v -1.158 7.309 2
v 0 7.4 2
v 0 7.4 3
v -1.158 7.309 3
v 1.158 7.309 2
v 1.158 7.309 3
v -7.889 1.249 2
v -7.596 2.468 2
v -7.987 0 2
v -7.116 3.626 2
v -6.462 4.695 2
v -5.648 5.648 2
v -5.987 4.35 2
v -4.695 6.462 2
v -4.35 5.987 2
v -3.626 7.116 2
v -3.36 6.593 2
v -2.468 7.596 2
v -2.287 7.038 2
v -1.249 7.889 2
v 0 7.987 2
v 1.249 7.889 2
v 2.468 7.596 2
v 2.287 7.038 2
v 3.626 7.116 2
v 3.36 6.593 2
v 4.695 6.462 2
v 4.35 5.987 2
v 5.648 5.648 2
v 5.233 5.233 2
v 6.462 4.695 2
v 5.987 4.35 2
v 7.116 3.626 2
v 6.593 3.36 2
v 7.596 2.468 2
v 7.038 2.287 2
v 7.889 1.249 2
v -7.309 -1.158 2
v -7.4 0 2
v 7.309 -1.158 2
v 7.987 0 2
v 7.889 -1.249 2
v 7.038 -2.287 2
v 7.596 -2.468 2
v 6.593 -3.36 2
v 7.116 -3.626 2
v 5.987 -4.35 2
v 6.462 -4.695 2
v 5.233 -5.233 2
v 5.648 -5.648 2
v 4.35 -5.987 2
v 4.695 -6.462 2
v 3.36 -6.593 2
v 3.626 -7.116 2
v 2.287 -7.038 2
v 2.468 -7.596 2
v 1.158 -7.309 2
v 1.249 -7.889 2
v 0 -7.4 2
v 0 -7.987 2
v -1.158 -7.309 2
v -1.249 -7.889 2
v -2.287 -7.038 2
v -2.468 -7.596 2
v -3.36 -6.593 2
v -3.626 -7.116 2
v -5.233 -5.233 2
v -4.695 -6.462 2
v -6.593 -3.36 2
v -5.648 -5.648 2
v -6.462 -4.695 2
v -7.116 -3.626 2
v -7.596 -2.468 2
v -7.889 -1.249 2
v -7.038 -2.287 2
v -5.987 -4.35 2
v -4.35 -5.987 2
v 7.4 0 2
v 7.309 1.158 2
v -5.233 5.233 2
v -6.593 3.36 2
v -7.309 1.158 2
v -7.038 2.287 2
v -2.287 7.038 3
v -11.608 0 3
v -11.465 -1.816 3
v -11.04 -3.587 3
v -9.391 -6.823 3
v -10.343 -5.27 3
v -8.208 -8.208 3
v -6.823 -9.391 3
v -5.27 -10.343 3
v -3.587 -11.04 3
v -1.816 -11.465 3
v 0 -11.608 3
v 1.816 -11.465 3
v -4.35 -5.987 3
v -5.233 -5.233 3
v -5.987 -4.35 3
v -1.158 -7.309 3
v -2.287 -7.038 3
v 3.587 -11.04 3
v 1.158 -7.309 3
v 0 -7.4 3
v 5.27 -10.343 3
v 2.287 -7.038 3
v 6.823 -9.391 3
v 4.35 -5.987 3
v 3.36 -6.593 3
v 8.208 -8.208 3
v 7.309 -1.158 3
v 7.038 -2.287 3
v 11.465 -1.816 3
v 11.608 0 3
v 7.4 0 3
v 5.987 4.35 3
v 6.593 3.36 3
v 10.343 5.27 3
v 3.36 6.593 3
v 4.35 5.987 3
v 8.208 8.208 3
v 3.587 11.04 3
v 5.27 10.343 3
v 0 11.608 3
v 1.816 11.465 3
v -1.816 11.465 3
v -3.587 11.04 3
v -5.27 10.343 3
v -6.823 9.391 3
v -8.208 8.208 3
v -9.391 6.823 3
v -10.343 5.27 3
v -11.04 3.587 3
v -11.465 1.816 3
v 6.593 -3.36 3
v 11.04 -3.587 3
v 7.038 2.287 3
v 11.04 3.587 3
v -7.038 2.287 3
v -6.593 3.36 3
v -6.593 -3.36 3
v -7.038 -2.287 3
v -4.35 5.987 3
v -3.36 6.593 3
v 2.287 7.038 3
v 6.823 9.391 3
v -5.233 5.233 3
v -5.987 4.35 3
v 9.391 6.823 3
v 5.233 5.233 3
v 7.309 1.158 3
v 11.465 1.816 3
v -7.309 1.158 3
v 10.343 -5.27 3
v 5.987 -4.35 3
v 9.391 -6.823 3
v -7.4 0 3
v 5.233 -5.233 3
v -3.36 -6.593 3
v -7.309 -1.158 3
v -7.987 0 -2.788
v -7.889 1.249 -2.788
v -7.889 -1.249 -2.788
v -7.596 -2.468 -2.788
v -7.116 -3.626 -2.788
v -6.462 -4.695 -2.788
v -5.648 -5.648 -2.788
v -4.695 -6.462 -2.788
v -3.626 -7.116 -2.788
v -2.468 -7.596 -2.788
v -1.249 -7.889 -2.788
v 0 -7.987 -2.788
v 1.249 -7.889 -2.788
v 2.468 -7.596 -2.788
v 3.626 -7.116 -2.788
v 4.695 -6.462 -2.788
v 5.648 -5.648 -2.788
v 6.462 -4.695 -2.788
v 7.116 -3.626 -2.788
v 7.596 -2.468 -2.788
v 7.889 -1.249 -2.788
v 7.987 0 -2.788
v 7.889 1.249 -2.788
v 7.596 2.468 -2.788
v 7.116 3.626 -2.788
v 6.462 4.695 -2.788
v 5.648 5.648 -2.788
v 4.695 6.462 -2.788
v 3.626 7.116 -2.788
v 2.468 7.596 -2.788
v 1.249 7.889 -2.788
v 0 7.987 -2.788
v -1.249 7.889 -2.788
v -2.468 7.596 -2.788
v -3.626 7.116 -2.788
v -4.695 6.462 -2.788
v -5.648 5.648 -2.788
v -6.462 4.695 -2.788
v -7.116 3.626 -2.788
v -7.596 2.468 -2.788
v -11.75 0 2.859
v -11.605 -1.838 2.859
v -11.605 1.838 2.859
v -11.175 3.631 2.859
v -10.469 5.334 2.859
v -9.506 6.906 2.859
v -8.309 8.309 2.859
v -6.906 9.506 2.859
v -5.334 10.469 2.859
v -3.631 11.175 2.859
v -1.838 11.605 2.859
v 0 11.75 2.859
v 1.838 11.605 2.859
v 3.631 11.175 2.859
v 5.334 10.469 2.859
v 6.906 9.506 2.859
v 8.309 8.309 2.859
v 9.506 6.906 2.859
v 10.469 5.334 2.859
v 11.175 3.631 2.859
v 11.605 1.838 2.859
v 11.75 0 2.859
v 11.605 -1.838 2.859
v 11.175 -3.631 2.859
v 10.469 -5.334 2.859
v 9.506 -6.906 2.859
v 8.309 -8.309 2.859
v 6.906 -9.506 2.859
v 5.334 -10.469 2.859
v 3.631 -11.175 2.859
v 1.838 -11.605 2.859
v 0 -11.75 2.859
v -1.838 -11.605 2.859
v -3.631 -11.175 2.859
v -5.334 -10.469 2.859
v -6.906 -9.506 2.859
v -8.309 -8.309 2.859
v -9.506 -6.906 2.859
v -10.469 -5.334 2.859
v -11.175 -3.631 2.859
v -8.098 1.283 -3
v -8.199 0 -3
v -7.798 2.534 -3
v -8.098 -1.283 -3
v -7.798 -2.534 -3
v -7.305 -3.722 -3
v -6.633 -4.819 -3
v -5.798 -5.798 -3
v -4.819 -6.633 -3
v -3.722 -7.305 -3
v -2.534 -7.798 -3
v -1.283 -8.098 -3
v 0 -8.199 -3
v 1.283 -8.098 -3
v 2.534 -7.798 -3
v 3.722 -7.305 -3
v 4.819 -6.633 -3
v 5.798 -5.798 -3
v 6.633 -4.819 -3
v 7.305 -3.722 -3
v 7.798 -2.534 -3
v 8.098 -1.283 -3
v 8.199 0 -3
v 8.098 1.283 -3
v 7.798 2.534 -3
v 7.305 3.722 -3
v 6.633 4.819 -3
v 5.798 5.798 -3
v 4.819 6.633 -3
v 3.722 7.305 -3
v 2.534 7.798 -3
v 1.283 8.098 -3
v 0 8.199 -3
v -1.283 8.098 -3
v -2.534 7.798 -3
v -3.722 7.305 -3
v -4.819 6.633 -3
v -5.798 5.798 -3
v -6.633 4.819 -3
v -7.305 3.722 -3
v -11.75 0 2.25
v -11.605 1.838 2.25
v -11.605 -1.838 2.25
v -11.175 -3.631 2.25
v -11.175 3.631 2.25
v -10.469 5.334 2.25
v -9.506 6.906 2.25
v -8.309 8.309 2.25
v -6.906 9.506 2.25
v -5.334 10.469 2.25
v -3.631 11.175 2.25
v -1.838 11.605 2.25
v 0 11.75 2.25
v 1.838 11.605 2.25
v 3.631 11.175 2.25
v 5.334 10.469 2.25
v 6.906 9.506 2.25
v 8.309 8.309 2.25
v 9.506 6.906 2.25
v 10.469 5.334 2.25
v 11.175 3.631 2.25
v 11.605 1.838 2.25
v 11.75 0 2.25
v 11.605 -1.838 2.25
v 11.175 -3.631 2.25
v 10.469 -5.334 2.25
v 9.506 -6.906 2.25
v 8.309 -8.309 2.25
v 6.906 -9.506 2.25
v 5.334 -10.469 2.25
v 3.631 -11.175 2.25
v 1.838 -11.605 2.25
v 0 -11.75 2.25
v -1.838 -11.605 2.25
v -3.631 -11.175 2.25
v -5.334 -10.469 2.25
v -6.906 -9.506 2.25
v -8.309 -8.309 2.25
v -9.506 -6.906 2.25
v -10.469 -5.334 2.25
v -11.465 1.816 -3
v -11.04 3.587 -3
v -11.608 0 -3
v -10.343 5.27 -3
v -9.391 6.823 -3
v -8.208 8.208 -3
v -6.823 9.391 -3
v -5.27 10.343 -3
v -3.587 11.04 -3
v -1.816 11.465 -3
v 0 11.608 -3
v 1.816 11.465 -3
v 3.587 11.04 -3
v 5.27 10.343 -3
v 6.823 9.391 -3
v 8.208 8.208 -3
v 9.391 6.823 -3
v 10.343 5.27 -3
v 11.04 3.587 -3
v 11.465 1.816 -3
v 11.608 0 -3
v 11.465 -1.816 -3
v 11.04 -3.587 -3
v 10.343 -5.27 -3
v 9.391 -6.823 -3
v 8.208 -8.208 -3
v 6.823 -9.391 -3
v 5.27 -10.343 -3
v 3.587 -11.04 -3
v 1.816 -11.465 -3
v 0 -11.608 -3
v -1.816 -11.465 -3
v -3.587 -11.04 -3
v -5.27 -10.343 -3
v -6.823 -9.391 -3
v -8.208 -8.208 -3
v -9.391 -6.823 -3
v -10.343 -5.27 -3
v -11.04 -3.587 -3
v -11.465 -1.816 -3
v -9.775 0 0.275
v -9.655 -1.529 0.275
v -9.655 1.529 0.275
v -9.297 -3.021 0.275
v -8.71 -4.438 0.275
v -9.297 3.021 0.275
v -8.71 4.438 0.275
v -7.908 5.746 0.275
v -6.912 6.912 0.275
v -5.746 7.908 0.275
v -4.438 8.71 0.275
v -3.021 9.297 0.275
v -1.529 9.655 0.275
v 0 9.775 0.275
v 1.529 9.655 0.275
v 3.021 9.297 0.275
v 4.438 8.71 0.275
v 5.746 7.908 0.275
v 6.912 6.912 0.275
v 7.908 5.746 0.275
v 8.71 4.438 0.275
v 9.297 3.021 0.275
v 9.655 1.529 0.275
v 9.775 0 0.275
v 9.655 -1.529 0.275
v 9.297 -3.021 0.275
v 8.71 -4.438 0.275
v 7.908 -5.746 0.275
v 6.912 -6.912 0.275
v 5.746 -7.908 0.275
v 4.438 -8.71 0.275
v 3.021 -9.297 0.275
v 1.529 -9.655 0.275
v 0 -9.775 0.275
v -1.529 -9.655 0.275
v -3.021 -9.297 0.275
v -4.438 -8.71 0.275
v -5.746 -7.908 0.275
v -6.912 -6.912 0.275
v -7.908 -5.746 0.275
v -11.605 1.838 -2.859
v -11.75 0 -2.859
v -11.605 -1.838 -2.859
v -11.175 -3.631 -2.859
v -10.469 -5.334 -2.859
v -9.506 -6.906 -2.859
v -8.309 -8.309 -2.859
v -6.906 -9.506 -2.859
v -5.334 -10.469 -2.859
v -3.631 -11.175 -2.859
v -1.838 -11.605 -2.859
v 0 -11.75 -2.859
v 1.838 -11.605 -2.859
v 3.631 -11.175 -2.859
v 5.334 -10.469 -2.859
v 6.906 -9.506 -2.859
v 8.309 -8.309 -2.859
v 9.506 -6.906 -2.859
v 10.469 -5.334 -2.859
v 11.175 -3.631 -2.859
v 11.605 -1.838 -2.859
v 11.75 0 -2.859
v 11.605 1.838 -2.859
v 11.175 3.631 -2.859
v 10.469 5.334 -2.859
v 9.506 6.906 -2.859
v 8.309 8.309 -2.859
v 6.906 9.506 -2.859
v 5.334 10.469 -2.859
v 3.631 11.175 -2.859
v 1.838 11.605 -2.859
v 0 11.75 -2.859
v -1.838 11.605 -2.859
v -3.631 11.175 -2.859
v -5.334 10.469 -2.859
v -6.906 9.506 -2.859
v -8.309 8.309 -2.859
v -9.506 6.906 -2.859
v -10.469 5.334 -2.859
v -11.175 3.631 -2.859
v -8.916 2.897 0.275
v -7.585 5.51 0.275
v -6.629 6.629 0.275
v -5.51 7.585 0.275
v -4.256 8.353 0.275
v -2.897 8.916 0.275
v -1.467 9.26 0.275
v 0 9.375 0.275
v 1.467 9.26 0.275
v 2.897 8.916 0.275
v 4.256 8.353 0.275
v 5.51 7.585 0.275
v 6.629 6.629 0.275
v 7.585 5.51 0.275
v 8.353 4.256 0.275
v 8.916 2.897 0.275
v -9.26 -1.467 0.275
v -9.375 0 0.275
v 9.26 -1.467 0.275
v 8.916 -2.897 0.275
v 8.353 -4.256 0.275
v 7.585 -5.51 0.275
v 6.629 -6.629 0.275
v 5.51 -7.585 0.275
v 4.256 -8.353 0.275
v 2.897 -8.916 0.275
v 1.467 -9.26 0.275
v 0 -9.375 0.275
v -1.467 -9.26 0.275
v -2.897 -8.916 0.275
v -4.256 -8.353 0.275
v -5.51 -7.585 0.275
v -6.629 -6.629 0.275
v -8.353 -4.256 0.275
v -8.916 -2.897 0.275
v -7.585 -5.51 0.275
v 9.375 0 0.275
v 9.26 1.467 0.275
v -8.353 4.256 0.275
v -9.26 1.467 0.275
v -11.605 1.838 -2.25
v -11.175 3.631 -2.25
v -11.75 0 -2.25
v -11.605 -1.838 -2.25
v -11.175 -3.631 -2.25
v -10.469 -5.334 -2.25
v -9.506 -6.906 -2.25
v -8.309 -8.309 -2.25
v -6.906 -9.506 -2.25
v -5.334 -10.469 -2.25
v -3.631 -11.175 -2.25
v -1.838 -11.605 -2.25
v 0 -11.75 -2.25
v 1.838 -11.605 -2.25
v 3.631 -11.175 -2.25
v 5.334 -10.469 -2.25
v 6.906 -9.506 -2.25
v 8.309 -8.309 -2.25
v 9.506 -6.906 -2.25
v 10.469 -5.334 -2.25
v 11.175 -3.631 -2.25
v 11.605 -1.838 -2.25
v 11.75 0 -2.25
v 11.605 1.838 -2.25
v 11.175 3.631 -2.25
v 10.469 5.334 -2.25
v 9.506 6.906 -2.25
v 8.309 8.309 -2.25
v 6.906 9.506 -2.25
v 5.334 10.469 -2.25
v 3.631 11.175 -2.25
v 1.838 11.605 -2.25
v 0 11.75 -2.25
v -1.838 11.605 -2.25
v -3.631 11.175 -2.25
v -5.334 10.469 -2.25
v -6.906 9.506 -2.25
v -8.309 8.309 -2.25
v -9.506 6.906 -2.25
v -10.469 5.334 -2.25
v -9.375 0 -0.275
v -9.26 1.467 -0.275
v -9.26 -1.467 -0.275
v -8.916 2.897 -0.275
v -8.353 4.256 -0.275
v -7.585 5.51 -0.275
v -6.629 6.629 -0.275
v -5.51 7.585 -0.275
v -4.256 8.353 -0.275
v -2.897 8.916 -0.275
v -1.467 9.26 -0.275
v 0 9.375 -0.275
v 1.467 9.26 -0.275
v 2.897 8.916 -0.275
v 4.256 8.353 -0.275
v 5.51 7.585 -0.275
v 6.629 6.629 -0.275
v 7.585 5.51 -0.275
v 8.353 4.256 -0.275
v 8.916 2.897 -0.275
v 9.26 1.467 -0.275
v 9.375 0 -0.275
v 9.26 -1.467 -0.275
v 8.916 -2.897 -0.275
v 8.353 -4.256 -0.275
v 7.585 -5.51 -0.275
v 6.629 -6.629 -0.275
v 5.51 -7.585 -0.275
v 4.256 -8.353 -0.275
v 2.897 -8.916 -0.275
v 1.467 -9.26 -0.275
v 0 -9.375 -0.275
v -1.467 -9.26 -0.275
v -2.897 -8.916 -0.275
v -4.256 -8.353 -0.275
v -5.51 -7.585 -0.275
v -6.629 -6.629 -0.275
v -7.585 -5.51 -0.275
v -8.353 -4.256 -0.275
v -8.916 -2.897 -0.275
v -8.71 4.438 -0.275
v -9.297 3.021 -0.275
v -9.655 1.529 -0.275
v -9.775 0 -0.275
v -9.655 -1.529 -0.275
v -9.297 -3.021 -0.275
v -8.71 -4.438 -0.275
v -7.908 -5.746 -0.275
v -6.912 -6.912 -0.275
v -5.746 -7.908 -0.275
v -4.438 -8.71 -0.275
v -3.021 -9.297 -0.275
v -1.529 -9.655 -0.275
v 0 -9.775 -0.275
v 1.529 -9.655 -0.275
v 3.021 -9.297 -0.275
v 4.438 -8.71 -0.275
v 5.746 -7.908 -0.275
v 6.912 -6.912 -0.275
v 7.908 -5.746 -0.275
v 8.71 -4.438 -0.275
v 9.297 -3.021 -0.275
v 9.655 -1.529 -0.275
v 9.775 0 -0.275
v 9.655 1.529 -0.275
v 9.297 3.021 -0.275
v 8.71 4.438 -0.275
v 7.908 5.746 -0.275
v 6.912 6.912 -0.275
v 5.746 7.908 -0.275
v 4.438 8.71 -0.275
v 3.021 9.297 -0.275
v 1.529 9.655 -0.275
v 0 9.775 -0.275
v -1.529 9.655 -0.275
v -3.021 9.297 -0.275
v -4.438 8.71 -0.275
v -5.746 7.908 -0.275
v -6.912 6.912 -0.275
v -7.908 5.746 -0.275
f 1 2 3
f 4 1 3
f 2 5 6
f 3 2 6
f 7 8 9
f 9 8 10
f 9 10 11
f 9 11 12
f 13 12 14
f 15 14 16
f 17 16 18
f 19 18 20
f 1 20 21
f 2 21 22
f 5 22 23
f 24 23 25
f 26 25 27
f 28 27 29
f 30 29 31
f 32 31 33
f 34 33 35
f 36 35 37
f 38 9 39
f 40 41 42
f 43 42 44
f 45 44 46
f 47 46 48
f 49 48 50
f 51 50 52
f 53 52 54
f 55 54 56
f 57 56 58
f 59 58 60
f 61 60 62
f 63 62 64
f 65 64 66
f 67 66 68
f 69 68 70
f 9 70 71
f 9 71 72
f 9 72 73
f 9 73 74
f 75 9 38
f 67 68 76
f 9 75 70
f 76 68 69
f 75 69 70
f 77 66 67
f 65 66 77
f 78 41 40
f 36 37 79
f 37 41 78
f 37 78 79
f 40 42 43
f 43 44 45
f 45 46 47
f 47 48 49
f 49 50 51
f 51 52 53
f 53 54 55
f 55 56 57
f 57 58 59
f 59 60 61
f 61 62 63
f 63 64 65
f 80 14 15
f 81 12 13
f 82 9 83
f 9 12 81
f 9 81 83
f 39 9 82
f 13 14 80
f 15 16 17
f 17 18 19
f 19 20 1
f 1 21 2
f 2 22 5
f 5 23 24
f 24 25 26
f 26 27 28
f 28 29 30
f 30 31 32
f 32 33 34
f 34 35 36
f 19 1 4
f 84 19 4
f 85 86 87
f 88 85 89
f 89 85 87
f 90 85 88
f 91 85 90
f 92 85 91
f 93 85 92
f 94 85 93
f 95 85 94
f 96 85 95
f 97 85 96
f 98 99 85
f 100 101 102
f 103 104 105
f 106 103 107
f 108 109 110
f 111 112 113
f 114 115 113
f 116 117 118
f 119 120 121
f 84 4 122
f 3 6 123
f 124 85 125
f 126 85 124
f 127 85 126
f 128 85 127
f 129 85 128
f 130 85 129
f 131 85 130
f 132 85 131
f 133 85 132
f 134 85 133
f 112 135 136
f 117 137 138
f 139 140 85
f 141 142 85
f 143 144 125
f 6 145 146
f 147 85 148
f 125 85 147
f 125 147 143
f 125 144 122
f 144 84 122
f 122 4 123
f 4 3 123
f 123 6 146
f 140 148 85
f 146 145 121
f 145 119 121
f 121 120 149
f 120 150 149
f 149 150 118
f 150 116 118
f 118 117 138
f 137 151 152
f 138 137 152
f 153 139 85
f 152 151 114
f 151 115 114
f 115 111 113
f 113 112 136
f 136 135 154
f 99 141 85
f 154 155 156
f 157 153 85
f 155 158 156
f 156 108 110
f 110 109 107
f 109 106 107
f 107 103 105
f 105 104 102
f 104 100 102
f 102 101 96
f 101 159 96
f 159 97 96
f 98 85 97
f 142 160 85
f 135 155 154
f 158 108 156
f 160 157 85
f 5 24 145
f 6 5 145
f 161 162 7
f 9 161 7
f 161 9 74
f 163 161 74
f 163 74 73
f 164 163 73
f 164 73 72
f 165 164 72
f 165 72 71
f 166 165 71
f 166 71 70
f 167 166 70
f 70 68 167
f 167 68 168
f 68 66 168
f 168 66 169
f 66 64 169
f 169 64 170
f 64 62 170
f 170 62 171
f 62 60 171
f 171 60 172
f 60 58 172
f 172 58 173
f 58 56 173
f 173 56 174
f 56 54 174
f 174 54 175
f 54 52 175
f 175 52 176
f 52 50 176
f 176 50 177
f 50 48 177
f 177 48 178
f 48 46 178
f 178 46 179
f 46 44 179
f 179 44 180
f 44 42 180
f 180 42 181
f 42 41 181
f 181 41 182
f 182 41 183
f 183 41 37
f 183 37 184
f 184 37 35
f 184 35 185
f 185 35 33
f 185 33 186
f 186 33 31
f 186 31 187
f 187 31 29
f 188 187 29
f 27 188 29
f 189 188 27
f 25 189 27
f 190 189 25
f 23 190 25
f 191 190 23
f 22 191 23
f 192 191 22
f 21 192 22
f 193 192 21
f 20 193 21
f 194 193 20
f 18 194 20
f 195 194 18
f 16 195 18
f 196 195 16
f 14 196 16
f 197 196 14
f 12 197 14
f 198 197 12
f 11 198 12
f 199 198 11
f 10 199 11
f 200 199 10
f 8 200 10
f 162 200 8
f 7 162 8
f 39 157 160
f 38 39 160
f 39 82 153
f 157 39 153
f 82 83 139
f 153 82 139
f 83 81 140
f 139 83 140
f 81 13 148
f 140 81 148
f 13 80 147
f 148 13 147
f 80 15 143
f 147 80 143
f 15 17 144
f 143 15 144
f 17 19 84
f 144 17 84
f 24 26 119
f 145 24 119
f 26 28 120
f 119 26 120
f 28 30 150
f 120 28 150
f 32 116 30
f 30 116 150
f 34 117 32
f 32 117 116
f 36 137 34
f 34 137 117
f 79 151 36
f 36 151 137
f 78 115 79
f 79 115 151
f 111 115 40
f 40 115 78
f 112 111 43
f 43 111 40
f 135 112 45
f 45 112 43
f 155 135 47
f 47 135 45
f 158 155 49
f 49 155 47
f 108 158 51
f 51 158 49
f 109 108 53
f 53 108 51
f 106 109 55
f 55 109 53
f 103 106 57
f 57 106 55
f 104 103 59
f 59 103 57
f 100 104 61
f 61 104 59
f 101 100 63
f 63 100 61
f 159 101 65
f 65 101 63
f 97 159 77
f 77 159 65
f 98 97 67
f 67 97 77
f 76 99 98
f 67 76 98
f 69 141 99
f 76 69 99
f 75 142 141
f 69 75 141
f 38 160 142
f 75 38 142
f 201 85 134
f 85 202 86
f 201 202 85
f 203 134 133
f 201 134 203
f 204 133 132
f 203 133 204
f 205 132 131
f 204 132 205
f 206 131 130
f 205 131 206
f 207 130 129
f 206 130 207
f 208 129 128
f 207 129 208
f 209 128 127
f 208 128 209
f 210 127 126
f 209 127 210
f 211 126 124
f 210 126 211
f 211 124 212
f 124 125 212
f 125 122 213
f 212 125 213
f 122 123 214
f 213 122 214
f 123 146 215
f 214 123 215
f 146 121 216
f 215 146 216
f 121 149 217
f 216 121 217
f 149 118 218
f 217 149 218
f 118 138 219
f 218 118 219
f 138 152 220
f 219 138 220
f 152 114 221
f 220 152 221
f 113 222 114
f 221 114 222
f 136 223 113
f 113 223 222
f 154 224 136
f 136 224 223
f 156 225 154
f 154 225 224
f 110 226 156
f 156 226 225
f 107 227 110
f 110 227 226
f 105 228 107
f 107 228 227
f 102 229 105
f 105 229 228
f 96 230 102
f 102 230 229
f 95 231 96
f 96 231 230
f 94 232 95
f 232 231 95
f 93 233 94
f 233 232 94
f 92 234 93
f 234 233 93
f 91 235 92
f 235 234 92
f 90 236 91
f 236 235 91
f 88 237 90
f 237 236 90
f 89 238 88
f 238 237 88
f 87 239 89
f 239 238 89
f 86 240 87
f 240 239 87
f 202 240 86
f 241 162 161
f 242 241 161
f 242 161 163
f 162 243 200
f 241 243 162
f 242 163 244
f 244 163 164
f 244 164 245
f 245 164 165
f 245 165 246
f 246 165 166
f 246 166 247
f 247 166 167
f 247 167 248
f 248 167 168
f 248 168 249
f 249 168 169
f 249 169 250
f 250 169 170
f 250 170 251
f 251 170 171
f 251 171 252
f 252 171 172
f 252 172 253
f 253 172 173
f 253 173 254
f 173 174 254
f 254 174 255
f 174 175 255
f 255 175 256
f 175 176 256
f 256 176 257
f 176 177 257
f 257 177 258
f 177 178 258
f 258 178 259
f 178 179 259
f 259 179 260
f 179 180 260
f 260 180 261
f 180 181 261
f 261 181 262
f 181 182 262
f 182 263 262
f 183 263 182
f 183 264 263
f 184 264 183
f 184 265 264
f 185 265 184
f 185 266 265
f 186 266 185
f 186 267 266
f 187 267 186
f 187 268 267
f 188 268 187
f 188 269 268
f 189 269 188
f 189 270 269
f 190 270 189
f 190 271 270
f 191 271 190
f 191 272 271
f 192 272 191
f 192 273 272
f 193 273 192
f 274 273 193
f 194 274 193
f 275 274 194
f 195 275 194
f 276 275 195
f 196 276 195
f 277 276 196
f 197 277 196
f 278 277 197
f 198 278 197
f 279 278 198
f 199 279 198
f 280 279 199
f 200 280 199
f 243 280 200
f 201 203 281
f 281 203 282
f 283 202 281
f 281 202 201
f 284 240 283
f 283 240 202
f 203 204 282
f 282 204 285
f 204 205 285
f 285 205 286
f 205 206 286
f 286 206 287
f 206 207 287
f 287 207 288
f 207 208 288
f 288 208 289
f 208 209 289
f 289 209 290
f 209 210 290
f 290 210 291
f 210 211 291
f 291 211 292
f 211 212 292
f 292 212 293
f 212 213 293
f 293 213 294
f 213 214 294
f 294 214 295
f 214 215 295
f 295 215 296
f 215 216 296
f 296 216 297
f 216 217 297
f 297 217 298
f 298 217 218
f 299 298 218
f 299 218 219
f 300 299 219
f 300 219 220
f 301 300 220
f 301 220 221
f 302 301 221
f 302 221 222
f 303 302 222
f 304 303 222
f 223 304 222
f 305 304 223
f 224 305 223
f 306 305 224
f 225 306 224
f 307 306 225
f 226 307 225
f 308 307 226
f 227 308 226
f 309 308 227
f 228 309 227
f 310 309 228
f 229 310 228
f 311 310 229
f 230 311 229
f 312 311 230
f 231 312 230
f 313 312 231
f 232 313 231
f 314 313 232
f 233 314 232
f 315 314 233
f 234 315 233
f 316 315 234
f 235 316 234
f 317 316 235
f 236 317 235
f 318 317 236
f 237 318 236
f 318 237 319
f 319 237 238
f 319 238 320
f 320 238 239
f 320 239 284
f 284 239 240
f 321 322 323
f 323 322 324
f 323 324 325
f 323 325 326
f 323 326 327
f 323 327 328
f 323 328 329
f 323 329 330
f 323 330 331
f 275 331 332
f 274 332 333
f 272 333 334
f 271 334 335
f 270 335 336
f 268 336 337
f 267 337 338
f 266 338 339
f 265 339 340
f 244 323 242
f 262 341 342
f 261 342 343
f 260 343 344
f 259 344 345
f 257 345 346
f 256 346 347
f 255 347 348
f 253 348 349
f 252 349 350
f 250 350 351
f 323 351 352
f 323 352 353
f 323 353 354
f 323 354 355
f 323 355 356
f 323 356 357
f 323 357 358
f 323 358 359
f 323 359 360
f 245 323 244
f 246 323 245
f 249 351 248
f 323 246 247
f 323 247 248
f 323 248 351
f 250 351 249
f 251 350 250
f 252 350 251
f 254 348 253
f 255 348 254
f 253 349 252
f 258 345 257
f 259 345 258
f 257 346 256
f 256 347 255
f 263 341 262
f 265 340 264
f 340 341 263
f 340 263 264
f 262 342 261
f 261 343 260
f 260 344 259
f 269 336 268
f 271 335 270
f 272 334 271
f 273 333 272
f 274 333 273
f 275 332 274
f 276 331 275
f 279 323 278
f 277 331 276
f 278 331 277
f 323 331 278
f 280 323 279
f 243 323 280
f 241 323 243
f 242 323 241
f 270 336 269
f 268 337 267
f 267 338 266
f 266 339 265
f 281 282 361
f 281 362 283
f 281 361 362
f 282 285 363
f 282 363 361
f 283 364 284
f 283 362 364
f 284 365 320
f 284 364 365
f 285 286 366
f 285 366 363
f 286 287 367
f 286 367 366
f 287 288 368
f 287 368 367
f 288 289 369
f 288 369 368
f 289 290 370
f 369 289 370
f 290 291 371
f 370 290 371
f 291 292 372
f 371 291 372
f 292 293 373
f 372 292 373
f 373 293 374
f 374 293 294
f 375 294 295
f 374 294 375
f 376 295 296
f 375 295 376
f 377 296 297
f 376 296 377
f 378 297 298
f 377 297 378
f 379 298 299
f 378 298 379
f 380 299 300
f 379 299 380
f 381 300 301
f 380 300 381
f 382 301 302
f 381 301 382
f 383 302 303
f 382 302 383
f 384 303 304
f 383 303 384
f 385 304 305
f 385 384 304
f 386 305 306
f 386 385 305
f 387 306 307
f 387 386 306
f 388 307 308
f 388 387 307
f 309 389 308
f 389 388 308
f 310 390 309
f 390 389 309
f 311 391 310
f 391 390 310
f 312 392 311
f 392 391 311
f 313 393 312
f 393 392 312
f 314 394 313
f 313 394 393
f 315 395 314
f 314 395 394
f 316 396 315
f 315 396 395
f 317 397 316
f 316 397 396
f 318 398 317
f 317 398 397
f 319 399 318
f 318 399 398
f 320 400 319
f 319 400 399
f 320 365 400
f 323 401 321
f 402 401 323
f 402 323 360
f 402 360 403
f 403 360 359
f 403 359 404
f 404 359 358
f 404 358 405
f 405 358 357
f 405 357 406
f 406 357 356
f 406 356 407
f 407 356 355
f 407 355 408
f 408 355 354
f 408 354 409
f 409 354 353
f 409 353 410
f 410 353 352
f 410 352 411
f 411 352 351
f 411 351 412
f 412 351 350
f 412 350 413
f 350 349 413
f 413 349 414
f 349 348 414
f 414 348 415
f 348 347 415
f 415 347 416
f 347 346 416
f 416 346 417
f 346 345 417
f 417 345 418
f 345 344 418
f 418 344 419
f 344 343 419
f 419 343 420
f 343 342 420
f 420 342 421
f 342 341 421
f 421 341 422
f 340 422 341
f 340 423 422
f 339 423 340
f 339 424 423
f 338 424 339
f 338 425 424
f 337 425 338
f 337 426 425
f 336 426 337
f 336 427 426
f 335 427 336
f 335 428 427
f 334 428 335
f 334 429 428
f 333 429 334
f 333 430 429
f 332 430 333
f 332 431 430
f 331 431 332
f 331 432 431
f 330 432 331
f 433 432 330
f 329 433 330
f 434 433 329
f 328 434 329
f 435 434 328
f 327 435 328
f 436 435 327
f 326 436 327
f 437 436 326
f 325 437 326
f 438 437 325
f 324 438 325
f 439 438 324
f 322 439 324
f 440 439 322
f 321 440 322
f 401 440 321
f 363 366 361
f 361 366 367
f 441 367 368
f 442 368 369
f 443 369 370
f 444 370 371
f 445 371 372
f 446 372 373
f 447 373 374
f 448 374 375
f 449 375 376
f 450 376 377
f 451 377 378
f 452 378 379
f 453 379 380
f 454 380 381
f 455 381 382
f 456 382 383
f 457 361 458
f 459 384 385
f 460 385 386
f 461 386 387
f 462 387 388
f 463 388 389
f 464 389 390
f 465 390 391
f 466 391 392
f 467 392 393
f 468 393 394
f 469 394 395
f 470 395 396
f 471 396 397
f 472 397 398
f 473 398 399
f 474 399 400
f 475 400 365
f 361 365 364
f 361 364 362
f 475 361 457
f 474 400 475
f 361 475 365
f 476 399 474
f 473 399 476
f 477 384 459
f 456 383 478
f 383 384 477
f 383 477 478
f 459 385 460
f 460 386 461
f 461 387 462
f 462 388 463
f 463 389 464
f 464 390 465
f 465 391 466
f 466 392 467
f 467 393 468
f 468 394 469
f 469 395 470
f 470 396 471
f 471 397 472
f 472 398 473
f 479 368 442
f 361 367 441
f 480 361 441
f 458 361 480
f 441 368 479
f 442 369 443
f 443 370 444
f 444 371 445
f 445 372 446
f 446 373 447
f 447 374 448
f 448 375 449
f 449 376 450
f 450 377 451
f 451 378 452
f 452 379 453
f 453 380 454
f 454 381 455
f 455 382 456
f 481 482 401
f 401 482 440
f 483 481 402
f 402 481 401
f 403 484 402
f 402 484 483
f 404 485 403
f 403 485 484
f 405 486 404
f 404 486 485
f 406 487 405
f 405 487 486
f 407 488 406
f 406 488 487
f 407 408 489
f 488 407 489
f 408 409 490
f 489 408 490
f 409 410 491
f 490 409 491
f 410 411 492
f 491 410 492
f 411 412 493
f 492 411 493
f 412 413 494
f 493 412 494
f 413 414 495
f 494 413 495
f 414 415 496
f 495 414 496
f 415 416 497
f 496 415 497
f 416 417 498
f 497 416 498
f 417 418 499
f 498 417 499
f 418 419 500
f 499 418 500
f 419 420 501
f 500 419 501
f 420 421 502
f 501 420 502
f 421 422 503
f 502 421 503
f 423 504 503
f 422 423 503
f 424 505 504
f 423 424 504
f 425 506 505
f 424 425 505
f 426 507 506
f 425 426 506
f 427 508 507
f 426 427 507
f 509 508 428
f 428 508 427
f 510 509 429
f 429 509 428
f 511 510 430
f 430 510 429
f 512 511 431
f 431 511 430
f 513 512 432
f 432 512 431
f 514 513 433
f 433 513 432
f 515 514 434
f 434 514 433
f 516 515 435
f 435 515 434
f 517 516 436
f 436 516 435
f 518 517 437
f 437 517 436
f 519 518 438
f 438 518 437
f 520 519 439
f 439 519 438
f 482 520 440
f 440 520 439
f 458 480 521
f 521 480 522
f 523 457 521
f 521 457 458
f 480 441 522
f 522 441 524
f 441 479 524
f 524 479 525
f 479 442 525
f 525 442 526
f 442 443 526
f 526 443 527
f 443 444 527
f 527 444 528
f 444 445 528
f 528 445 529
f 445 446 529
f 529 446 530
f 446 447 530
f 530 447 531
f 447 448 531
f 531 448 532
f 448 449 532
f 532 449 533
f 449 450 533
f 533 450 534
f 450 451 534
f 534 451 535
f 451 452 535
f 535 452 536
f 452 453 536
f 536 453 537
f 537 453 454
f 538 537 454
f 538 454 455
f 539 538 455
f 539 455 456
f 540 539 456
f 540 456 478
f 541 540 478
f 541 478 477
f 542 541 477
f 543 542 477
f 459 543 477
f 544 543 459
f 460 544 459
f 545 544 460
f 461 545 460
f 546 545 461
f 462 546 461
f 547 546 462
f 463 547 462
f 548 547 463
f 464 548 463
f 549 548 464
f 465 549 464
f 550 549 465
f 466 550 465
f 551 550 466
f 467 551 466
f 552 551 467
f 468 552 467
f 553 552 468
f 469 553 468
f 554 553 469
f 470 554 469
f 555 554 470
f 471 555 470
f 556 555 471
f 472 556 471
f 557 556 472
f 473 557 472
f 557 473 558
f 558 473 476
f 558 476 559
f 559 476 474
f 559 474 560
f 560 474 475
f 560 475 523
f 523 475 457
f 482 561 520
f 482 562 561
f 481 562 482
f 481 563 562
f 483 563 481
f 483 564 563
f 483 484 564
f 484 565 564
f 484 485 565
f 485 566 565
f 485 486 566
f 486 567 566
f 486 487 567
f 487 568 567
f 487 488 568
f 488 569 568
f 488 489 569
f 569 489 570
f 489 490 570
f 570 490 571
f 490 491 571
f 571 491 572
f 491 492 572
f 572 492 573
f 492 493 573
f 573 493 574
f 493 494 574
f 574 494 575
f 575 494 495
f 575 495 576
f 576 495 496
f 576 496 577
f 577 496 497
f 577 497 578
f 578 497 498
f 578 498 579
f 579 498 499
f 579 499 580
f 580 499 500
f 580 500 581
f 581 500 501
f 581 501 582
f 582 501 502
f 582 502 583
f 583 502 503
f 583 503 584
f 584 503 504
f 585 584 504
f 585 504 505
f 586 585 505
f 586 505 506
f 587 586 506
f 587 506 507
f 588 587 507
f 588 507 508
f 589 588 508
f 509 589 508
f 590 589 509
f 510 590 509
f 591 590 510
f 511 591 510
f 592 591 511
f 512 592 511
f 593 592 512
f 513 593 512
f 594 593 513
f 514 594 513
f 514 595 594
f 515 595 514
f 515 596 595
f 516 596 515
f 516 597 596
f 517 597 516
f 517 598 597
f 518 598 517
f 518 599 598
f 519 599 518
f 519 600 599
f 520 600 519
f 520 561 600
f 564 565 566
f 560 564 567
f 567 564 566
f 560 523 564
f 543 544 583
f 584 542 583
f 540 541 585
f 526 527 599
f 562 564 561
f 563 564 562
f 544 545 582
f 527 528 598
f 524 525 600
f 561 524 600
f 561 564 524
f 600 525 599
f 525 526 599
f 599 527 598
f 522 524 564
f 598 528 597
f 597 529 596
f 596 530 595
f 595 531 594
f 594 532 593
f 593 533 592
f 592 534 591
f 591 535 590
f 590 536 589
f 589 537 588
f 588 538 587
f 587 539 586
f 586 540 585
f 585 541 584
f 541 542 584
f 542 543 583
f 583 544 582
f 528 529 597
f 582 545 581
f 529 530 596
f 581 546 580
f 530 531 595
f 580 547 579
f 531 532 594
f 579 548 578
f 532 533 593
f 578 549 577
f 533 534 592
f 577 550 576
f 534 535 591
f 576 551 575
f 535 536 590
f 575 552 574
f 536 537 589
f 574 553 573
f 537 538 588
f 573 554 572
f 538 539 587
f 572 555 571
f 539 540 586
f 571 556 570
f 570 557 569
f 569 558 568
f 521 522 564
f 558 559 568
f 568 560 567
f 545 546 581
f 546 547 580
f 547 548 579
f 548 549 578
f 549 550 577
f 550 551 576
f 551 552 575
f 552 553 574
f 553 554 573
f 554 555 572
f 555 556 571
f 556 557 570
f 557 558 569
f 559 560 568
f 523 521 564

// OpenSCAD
// MakerSlide Component 
// http://www.makerslide.com
// b17001_rev_2
// Single Bearing Delrin V Wheel
// Original by Barton Dring
// OpenSCAD model by Mike Sheldrake

vwheel(false);

module vwheelbearing() { //id=5mm,od=16mm,width=5mm
	color([0.5,0.5,0.5])
	difference() {
		cylinder(r=8,h=5,$fn=24);
		translate([0,0,-0.05]) cylinder(r=2.5,h=5.1,$fn=12);
		}
	}

module vwheel(withbearing=true) { //MakerSlide.com delrin v wheel
id1=15.9743;
id2=14.8;
od1=23.5;
od2=18.75;
color([0.2,0.2,0.2])
rotate_extrude(convexity = 10,$fn=40)
translate([id1/2, 0, 0])
rotate([0,0,-90])
polygon(points = [
	[3 - 0.3/sqrt(2),0],
	[-2,0],
	[-2,-(id1-id2)/2],
	[-3,-(id1-id2)/2],
	[-3,(od1-id1)/2 - 0.2/sqrt(2)],
	[-3 + 0.2/sqrt(2),(od1-id1)/2],
	[-3 + 0.75,(od1-id1)/2],
	[-0.55/2,   (od1-id1)/2 - (3 - (0.75+(0.55/2)))],
	[-0.55/2,(od2-id1)/2],
	[0.55/2,(od2-id1)/2],
	[0.55/2,   (od1-id1)/2 - (3 - (0.75+(0.55/2)))],
	[3 - 0.75,(od1-id1)/2],
	[3 - 0.2/sqrt(2),(od1-id1)/2],
	[3,(od1-id1)/2 - 0.2/sqrt(2)],
	[3,0.3/sqrt(2)]
	],
	paths = [
	 [0,1,2,3,4,5,6,7,8,9,10,11,12,13,14]
	 ], convexity = 10);

	if (withbearing) {translate([0,0,-3]) vwheelbearing();}

	}
